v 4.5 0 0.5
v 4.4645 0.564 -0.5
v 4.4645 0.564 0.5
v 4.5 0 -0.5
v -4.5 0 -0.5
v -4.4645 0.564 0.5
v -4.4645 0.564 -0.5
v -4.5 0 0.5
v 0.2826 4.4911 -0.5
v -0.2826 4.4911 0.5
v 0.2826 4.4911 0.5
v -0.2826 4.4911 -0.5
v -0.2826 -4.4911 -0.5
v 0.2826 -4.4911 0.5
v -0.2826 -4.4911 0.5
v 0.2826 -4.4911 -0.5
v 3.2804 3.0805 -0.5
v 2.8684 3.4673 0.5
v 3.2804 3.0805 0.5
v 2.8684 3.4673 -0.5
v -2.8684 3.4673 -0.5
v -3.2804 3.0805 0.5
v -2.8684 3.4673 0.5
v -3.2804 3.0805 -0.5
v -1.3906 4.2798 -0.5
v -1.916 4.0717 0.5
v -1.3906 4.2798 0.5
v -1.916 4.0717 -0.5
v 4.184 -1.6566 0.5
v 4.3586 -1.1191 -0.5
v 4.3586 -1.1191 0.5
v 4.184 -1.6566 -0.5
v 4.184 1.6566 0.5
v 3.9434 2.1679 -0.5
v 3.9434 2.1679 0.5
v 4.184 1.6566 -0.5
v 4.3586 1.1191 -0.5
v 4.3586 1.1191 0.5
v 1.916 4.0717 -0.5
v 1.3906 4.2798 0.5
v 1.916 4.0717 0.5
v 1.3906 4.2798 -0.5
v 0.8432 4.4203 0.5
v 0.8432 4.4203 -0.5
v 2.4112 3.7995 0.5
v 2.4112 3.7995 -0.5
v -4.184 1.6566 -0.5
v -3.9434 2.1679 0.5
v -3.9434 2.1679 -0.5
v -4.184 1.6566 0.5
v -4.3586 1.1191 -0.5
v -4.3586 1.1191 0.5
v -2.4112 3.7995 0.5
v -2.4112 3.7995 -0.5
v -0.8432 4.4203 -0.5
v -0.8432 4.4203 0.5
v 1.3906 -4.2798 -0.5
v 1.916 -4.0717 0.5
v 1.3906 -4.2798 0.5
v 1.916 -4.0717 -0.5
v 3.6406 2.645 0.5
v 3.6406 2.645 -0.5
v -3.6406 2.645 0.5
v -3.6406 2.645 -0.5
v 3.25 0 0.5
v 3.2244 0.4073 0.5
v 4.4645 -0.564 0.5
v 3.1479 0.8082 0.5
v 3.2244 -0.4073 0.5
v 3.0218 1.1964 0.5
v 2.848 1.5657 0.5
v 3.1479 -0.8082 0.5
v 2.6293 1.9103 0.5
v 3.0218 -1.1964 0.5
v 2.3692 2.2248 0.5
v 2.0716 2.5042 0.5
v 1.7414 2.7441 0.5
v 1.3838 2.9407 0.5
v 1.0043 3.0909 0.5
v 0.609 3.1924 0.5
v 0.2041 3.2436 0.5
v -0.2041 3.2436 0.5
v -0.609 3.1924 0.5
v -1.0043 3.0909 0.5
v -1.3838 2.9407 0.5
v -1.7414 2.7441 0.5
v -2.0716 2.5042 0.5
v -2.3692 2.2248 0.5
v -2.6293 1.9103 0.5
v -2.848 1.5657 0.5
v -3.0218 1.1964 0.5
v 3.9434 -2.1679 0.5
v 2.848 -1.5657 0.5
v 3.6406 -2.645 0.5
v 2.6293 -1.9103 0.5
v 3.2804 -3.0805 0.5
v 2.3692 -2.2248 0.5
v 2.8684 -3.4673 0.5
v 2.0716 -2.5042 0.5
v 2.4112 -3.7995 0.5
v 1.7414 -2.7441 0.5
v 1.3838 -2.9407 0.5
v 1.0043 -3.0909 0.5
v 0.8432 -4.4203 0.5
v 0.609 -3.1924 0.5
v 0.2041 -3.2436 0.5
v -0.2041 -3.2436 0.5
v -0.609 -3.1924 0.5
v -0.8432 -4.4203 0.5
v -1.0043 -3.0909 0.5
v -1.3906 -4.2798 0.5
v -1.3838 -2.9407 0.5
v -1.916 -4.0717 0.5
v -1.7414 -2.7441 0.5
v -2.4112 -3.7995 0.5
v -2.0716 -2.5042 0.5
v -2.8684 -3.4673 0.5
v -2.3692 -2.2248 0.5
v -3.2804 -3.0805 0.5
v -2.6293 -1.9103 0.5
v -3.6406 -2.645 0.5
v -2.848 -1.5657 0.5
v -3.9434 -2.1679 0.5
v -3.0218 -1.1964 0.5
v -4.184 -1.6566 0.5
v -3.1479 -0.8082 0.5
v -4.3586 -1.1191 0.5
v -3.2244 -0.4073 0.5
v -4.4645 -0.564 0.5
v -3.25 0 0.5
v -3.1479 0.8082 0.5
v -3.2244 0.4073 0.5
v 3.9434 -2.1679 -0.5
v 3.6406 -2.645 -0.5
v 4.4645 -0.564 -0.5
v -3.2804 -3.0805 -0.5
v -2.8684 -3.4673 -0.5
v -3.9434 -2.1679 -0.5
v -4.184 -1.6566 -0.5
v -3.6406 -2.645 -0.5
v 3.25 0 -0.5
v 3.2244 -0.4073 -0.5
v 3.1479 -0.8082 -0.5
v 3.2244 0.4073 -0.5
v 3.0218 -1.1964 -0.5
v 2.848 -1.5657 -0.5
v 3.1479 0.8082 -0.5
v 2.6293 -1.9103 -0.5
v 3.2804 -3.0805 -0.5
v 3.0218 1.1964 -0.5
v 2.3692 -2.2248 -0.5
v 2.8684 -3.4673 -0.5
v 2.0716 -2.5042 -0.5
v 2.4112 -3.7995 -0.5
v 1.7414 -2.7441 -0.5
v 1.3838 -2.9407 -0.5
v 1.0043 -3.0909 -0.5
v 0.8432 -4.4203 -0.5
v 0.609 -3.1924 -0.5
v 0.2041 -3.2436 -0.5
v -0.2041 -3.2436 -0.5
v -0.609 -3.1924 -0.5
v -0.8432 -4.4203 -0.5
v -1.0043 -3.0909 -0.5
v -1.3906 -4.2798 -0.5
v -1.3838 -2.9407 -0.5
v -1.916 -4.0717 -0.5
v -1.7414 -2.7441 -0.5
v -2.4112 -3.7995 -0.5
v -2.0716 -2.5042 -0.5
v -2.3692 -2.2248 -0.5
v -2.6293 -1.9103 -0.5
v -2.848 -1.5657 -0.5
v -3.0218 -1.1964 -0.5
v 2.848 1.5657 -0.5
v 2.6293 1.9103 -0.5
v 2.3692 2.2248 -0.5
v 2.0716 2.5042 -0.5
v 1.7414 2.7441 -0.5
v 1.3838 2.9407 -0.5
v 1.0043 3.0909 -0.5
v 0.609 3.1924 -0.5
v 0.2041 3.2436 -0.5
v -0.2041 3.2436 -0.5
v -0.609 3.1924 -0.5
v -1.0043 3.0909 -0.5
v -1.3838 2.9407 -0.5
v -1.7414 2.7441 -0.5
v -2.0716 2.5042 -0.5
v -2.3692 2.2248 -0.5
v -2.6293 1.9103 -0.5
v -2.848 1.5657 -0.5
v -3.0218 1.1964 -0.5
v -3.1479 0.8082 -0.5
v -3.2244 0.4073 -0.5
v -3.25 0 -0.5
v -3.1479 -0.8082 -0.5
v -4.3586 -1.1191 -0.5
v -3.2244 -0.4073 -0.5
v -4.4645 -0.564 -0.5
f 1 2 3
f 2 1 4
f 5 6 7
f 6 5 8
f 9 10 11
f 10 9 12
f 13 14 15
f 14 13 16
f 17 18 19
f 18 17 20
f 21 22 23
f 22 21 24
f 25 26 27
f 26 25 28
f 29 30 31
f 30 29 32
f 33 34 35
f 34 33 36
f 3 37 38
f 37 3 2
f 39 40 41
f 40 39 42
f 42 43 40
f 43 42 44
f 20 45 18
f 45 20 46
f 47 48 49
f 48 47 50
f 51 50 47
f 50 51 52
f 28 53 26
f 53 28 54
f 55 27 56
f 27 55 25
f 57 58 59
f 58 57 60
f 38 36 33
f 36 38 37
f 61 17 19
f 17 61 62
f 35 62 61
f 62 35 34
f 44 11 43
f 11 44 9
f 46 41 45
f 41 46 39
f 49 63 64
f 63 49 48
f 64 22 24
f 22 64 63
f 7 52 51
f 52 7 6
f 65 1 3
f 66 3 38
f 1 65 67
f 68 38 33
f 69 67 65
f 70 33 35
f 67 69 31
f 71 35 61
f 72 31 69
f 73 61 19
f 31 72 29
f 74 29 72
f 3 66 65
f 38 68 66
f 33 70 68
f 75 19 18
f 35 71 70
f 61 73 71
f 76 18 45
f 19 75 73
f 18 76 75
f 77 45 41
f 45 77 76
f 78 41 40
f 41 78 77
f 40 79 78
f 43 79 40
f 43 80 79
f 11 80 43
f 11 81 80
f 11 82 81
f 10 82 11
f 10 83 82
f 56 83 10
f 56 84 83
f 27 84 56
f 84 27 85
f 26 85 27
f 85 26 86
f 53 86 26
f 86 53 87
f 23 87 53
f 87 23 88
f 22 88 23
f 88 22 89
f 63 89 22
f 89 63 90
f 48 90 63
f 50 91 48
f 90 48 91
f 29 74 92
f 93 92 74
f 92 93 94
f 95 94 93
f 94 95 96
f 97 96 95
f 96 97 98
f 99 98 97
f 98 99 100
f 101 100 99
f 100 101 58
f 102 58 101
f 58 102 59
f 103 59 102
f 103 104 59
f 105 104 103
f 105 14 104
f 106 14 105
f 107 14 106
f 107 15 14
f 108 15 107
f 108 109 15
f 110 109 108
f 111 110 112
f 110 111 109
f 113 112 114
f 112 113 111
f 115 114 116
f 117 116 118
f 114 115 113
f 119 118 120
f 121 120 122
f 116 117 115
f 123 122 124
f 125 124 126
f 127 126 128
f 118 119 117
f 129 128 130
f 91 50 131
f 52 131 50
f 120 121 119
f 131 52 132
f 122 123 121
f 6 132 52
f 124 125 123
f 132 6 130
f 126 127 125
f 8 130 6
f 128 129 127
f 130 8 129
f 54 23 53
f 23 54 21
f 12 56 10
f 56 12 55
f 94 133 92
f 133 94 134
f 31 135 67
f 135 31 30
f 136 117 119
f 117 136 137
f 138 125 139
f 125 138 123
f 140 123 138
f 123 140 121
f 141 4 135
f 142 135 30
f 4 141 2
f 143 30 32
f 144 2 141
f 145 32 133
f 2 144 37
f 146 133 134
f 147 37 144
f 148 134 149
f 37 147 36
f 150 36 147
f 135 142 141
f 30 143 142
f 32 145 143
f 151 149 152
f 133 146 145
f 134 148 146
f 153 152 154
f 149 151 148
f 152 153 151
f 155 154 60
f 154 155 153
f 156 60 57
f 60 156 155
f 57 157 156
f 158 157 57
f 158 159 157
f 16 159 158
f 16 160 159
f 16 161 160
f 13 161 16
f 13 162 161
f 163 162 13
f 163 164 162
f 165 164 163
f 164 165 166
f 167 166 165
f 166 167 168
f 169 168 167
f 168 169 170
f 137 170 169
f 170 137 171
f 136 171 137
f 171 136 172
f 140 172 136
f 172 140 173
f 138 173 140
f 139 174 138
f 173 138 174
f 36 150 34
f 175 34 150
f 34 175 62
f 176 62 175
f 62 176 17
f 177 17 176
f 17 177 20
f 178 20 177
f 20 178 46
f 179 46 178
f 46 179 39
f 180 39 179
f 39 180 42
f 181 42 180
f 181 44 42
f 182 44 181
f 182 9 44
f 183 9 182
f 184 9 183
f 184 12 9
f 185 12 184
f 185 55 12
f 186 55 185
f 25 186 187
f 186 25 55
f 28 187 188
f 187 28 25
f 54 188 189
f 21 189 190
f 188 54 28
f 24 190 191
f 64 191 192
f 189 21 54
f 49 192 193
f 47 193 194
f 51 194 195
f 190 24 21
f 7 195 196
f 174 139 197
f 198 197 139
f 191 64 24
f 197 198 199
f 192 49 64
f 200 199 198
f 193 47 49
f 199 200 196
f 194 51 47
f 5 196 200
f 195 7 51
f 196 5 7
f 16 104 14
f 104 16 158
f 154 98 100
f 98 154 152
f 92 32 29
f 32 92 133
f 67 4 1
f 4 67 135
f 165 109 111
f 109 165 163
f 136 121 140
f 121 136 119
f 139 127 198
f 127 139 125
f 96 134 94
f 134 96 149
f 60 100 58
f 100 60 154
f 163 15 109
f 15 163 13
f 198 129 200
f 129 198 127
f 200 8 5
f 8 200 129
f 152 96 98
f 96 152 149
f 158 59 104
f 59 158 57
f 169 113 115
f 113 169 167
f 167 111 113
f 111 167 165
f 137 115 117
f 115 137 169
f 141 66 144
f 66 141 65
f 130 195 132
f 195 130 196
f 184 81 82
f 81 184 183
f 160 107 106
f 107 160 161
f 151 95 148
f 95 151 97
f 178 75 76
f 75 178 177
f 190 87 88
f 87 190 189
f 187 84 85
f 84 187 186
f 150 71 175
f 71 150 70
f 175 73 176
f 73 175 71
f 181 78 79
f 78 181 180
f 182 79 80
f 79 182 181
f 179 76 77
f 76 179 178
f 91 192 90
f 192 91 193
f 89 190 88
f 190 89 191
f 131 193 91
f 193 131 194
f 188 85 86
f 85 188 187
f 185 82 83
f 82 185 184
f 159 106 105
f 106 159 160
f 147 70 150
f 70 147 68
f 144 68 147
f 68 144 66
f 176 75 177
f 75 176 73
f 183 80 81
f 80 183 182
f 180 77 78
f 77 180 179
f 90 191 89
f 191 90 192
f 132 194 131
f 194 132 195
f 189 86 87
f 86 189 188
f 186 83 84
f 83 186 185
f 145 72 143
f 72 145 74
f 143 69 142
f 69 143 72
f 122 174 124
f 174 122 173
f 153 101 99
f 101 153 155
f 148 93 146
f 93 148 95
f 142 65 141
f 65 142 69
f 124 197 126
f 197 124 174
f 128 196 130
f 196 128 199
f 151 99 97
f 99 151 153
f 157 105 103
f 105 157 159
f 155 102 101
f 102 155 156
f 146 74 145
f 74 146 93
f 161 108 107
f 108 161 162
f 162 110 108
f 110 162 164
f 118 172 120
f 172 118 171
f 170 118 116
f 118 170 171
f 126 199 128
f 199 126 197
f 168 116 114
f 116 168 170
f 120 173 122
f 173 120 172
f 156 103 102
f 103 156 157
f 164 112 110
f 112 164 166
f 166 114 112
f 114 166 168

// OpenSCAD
$fn = 50;


difference() {
	union() {
		translate(v = [0, 0, -0.5000000000]) {
			cylinder(h = 1, r = 4.5000000000);
		}
	}
	union() {
		translate(v = [0, 0, -100.0000000000]) {
			cylinder(h = 200, r = 3.2500000000);
		}
	}
}
